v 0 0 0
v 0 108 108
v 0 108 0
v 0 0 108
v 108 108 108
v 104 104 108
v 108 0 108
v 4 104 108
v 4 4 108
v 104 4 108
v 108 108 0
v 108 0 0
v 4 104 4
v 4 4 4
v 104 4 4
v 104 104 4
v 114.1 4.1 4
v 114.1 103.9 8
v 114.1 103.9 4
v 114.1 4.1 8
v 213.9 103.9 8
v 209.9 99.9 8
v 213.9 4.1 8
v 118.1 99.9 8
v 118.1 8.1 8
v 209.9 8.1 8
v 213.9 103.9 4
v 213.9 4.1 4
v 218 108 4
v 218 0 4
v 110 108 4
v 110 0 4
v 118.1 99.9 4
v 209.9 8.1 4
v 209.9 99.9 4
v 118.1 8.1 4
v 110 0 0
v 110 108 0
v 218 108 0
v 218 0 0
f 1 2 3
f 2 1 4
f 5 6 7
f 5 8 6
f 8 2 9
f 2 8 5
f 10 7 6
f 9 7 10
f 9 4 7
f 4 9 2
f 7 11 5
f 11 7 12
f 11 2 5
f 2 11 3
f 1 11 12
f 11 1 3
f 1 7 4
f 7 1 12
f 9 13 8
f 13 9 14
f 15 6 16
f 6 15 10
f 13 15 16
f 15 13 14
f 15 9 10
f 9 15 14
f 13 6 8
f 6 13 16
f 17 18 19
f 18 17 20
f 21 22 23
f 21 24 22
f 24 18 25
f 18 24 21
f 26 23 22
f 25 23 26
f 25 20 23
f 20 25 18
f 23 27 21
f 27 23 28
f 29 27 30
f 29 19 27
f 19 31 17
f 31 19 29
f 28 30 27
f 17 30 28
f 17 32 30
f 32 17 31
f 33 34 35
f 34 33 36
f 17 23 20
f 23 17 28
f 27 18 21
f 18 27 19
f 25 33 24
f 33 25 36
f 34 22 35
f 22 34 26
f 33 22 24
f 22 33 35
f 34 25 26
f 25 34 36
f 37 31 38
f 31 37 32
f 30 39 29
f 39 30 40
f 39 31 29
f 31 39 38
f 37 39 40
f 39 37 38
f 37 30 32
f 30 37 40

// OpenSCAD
//-----FUNÇÃO CAIXA E TAMPA RETANGULAR-----//

// Forneça as três dimensões do objeto a ser encaixotado: a,b,c
// Leve em conta que as dimensões a,b,c precisam ter um tamanho um pouco maior do que as reais dimensões do objeto, no mínimo 0.5 mm maiores
// Forneça a espessura da caixa e da tampa: d
// Forneça a altura da tampa: h
// Encaixe por fora (true) ou encaixe por dentro (false)?

rr=0.1; //Espaço de sobra


module funcao_caixa(a,b,c,d,h,encaixe){
    if(encaixe){
    /*---Encaixe por fora---*/
        /*---Caixa---*/
        difference(){
            cube([a+2*d,b+2*d,c+d]);
            #translate([d,d,d])cube([a,b,c]);
        };
        /*---Tampa---*/
        translate([a+2*d+2,0,0])difference(){
            cube([a+4*d+2*rr,b+4*d+2*rr,h]);
            #translate([d,d,d])cube([a+2*d+2*rr,b+2*d+2*rr,h-d]);
        };
    }else{
    /*---Encaixe por dentro---*/
        /*---Caixa---*/
        difference(){
            cube([a+2*d,b+2*d,c+2*d]);
            #translate([d,d,d])cube([a,b,c+d]);
        };
        /*---Tampa---*/
        translate([a+2*d+2,0,0])cube([a+2*d,b+2*d,d]);
        translate([a+2*d+2,0,0])difference(){
            translate([d+rr,d+rr,d])cube([a-2*rr,b-2*rr,d]);
            #translate([2*d+rr,2*d+rr,d])cube([a-2*rr-2*d,b-2*rr-2*d,d]);
        };
    };
};

// Caso Encaixe por fora, o tamanho da caixa com a tampa posta é [a+4*d+2*rr,b+4*d+2*rr,c+2*d]  
// Caso Encaixe por dentro, o tamanho da caixa com a tampa posta é [a+2*d,b+2*d,c+3*d] 

a=100;
b=100;
c=100;
d=4;
h=10;
encaixe=false;

funcao_caixa(a,b,c,d,h,encaixe);
